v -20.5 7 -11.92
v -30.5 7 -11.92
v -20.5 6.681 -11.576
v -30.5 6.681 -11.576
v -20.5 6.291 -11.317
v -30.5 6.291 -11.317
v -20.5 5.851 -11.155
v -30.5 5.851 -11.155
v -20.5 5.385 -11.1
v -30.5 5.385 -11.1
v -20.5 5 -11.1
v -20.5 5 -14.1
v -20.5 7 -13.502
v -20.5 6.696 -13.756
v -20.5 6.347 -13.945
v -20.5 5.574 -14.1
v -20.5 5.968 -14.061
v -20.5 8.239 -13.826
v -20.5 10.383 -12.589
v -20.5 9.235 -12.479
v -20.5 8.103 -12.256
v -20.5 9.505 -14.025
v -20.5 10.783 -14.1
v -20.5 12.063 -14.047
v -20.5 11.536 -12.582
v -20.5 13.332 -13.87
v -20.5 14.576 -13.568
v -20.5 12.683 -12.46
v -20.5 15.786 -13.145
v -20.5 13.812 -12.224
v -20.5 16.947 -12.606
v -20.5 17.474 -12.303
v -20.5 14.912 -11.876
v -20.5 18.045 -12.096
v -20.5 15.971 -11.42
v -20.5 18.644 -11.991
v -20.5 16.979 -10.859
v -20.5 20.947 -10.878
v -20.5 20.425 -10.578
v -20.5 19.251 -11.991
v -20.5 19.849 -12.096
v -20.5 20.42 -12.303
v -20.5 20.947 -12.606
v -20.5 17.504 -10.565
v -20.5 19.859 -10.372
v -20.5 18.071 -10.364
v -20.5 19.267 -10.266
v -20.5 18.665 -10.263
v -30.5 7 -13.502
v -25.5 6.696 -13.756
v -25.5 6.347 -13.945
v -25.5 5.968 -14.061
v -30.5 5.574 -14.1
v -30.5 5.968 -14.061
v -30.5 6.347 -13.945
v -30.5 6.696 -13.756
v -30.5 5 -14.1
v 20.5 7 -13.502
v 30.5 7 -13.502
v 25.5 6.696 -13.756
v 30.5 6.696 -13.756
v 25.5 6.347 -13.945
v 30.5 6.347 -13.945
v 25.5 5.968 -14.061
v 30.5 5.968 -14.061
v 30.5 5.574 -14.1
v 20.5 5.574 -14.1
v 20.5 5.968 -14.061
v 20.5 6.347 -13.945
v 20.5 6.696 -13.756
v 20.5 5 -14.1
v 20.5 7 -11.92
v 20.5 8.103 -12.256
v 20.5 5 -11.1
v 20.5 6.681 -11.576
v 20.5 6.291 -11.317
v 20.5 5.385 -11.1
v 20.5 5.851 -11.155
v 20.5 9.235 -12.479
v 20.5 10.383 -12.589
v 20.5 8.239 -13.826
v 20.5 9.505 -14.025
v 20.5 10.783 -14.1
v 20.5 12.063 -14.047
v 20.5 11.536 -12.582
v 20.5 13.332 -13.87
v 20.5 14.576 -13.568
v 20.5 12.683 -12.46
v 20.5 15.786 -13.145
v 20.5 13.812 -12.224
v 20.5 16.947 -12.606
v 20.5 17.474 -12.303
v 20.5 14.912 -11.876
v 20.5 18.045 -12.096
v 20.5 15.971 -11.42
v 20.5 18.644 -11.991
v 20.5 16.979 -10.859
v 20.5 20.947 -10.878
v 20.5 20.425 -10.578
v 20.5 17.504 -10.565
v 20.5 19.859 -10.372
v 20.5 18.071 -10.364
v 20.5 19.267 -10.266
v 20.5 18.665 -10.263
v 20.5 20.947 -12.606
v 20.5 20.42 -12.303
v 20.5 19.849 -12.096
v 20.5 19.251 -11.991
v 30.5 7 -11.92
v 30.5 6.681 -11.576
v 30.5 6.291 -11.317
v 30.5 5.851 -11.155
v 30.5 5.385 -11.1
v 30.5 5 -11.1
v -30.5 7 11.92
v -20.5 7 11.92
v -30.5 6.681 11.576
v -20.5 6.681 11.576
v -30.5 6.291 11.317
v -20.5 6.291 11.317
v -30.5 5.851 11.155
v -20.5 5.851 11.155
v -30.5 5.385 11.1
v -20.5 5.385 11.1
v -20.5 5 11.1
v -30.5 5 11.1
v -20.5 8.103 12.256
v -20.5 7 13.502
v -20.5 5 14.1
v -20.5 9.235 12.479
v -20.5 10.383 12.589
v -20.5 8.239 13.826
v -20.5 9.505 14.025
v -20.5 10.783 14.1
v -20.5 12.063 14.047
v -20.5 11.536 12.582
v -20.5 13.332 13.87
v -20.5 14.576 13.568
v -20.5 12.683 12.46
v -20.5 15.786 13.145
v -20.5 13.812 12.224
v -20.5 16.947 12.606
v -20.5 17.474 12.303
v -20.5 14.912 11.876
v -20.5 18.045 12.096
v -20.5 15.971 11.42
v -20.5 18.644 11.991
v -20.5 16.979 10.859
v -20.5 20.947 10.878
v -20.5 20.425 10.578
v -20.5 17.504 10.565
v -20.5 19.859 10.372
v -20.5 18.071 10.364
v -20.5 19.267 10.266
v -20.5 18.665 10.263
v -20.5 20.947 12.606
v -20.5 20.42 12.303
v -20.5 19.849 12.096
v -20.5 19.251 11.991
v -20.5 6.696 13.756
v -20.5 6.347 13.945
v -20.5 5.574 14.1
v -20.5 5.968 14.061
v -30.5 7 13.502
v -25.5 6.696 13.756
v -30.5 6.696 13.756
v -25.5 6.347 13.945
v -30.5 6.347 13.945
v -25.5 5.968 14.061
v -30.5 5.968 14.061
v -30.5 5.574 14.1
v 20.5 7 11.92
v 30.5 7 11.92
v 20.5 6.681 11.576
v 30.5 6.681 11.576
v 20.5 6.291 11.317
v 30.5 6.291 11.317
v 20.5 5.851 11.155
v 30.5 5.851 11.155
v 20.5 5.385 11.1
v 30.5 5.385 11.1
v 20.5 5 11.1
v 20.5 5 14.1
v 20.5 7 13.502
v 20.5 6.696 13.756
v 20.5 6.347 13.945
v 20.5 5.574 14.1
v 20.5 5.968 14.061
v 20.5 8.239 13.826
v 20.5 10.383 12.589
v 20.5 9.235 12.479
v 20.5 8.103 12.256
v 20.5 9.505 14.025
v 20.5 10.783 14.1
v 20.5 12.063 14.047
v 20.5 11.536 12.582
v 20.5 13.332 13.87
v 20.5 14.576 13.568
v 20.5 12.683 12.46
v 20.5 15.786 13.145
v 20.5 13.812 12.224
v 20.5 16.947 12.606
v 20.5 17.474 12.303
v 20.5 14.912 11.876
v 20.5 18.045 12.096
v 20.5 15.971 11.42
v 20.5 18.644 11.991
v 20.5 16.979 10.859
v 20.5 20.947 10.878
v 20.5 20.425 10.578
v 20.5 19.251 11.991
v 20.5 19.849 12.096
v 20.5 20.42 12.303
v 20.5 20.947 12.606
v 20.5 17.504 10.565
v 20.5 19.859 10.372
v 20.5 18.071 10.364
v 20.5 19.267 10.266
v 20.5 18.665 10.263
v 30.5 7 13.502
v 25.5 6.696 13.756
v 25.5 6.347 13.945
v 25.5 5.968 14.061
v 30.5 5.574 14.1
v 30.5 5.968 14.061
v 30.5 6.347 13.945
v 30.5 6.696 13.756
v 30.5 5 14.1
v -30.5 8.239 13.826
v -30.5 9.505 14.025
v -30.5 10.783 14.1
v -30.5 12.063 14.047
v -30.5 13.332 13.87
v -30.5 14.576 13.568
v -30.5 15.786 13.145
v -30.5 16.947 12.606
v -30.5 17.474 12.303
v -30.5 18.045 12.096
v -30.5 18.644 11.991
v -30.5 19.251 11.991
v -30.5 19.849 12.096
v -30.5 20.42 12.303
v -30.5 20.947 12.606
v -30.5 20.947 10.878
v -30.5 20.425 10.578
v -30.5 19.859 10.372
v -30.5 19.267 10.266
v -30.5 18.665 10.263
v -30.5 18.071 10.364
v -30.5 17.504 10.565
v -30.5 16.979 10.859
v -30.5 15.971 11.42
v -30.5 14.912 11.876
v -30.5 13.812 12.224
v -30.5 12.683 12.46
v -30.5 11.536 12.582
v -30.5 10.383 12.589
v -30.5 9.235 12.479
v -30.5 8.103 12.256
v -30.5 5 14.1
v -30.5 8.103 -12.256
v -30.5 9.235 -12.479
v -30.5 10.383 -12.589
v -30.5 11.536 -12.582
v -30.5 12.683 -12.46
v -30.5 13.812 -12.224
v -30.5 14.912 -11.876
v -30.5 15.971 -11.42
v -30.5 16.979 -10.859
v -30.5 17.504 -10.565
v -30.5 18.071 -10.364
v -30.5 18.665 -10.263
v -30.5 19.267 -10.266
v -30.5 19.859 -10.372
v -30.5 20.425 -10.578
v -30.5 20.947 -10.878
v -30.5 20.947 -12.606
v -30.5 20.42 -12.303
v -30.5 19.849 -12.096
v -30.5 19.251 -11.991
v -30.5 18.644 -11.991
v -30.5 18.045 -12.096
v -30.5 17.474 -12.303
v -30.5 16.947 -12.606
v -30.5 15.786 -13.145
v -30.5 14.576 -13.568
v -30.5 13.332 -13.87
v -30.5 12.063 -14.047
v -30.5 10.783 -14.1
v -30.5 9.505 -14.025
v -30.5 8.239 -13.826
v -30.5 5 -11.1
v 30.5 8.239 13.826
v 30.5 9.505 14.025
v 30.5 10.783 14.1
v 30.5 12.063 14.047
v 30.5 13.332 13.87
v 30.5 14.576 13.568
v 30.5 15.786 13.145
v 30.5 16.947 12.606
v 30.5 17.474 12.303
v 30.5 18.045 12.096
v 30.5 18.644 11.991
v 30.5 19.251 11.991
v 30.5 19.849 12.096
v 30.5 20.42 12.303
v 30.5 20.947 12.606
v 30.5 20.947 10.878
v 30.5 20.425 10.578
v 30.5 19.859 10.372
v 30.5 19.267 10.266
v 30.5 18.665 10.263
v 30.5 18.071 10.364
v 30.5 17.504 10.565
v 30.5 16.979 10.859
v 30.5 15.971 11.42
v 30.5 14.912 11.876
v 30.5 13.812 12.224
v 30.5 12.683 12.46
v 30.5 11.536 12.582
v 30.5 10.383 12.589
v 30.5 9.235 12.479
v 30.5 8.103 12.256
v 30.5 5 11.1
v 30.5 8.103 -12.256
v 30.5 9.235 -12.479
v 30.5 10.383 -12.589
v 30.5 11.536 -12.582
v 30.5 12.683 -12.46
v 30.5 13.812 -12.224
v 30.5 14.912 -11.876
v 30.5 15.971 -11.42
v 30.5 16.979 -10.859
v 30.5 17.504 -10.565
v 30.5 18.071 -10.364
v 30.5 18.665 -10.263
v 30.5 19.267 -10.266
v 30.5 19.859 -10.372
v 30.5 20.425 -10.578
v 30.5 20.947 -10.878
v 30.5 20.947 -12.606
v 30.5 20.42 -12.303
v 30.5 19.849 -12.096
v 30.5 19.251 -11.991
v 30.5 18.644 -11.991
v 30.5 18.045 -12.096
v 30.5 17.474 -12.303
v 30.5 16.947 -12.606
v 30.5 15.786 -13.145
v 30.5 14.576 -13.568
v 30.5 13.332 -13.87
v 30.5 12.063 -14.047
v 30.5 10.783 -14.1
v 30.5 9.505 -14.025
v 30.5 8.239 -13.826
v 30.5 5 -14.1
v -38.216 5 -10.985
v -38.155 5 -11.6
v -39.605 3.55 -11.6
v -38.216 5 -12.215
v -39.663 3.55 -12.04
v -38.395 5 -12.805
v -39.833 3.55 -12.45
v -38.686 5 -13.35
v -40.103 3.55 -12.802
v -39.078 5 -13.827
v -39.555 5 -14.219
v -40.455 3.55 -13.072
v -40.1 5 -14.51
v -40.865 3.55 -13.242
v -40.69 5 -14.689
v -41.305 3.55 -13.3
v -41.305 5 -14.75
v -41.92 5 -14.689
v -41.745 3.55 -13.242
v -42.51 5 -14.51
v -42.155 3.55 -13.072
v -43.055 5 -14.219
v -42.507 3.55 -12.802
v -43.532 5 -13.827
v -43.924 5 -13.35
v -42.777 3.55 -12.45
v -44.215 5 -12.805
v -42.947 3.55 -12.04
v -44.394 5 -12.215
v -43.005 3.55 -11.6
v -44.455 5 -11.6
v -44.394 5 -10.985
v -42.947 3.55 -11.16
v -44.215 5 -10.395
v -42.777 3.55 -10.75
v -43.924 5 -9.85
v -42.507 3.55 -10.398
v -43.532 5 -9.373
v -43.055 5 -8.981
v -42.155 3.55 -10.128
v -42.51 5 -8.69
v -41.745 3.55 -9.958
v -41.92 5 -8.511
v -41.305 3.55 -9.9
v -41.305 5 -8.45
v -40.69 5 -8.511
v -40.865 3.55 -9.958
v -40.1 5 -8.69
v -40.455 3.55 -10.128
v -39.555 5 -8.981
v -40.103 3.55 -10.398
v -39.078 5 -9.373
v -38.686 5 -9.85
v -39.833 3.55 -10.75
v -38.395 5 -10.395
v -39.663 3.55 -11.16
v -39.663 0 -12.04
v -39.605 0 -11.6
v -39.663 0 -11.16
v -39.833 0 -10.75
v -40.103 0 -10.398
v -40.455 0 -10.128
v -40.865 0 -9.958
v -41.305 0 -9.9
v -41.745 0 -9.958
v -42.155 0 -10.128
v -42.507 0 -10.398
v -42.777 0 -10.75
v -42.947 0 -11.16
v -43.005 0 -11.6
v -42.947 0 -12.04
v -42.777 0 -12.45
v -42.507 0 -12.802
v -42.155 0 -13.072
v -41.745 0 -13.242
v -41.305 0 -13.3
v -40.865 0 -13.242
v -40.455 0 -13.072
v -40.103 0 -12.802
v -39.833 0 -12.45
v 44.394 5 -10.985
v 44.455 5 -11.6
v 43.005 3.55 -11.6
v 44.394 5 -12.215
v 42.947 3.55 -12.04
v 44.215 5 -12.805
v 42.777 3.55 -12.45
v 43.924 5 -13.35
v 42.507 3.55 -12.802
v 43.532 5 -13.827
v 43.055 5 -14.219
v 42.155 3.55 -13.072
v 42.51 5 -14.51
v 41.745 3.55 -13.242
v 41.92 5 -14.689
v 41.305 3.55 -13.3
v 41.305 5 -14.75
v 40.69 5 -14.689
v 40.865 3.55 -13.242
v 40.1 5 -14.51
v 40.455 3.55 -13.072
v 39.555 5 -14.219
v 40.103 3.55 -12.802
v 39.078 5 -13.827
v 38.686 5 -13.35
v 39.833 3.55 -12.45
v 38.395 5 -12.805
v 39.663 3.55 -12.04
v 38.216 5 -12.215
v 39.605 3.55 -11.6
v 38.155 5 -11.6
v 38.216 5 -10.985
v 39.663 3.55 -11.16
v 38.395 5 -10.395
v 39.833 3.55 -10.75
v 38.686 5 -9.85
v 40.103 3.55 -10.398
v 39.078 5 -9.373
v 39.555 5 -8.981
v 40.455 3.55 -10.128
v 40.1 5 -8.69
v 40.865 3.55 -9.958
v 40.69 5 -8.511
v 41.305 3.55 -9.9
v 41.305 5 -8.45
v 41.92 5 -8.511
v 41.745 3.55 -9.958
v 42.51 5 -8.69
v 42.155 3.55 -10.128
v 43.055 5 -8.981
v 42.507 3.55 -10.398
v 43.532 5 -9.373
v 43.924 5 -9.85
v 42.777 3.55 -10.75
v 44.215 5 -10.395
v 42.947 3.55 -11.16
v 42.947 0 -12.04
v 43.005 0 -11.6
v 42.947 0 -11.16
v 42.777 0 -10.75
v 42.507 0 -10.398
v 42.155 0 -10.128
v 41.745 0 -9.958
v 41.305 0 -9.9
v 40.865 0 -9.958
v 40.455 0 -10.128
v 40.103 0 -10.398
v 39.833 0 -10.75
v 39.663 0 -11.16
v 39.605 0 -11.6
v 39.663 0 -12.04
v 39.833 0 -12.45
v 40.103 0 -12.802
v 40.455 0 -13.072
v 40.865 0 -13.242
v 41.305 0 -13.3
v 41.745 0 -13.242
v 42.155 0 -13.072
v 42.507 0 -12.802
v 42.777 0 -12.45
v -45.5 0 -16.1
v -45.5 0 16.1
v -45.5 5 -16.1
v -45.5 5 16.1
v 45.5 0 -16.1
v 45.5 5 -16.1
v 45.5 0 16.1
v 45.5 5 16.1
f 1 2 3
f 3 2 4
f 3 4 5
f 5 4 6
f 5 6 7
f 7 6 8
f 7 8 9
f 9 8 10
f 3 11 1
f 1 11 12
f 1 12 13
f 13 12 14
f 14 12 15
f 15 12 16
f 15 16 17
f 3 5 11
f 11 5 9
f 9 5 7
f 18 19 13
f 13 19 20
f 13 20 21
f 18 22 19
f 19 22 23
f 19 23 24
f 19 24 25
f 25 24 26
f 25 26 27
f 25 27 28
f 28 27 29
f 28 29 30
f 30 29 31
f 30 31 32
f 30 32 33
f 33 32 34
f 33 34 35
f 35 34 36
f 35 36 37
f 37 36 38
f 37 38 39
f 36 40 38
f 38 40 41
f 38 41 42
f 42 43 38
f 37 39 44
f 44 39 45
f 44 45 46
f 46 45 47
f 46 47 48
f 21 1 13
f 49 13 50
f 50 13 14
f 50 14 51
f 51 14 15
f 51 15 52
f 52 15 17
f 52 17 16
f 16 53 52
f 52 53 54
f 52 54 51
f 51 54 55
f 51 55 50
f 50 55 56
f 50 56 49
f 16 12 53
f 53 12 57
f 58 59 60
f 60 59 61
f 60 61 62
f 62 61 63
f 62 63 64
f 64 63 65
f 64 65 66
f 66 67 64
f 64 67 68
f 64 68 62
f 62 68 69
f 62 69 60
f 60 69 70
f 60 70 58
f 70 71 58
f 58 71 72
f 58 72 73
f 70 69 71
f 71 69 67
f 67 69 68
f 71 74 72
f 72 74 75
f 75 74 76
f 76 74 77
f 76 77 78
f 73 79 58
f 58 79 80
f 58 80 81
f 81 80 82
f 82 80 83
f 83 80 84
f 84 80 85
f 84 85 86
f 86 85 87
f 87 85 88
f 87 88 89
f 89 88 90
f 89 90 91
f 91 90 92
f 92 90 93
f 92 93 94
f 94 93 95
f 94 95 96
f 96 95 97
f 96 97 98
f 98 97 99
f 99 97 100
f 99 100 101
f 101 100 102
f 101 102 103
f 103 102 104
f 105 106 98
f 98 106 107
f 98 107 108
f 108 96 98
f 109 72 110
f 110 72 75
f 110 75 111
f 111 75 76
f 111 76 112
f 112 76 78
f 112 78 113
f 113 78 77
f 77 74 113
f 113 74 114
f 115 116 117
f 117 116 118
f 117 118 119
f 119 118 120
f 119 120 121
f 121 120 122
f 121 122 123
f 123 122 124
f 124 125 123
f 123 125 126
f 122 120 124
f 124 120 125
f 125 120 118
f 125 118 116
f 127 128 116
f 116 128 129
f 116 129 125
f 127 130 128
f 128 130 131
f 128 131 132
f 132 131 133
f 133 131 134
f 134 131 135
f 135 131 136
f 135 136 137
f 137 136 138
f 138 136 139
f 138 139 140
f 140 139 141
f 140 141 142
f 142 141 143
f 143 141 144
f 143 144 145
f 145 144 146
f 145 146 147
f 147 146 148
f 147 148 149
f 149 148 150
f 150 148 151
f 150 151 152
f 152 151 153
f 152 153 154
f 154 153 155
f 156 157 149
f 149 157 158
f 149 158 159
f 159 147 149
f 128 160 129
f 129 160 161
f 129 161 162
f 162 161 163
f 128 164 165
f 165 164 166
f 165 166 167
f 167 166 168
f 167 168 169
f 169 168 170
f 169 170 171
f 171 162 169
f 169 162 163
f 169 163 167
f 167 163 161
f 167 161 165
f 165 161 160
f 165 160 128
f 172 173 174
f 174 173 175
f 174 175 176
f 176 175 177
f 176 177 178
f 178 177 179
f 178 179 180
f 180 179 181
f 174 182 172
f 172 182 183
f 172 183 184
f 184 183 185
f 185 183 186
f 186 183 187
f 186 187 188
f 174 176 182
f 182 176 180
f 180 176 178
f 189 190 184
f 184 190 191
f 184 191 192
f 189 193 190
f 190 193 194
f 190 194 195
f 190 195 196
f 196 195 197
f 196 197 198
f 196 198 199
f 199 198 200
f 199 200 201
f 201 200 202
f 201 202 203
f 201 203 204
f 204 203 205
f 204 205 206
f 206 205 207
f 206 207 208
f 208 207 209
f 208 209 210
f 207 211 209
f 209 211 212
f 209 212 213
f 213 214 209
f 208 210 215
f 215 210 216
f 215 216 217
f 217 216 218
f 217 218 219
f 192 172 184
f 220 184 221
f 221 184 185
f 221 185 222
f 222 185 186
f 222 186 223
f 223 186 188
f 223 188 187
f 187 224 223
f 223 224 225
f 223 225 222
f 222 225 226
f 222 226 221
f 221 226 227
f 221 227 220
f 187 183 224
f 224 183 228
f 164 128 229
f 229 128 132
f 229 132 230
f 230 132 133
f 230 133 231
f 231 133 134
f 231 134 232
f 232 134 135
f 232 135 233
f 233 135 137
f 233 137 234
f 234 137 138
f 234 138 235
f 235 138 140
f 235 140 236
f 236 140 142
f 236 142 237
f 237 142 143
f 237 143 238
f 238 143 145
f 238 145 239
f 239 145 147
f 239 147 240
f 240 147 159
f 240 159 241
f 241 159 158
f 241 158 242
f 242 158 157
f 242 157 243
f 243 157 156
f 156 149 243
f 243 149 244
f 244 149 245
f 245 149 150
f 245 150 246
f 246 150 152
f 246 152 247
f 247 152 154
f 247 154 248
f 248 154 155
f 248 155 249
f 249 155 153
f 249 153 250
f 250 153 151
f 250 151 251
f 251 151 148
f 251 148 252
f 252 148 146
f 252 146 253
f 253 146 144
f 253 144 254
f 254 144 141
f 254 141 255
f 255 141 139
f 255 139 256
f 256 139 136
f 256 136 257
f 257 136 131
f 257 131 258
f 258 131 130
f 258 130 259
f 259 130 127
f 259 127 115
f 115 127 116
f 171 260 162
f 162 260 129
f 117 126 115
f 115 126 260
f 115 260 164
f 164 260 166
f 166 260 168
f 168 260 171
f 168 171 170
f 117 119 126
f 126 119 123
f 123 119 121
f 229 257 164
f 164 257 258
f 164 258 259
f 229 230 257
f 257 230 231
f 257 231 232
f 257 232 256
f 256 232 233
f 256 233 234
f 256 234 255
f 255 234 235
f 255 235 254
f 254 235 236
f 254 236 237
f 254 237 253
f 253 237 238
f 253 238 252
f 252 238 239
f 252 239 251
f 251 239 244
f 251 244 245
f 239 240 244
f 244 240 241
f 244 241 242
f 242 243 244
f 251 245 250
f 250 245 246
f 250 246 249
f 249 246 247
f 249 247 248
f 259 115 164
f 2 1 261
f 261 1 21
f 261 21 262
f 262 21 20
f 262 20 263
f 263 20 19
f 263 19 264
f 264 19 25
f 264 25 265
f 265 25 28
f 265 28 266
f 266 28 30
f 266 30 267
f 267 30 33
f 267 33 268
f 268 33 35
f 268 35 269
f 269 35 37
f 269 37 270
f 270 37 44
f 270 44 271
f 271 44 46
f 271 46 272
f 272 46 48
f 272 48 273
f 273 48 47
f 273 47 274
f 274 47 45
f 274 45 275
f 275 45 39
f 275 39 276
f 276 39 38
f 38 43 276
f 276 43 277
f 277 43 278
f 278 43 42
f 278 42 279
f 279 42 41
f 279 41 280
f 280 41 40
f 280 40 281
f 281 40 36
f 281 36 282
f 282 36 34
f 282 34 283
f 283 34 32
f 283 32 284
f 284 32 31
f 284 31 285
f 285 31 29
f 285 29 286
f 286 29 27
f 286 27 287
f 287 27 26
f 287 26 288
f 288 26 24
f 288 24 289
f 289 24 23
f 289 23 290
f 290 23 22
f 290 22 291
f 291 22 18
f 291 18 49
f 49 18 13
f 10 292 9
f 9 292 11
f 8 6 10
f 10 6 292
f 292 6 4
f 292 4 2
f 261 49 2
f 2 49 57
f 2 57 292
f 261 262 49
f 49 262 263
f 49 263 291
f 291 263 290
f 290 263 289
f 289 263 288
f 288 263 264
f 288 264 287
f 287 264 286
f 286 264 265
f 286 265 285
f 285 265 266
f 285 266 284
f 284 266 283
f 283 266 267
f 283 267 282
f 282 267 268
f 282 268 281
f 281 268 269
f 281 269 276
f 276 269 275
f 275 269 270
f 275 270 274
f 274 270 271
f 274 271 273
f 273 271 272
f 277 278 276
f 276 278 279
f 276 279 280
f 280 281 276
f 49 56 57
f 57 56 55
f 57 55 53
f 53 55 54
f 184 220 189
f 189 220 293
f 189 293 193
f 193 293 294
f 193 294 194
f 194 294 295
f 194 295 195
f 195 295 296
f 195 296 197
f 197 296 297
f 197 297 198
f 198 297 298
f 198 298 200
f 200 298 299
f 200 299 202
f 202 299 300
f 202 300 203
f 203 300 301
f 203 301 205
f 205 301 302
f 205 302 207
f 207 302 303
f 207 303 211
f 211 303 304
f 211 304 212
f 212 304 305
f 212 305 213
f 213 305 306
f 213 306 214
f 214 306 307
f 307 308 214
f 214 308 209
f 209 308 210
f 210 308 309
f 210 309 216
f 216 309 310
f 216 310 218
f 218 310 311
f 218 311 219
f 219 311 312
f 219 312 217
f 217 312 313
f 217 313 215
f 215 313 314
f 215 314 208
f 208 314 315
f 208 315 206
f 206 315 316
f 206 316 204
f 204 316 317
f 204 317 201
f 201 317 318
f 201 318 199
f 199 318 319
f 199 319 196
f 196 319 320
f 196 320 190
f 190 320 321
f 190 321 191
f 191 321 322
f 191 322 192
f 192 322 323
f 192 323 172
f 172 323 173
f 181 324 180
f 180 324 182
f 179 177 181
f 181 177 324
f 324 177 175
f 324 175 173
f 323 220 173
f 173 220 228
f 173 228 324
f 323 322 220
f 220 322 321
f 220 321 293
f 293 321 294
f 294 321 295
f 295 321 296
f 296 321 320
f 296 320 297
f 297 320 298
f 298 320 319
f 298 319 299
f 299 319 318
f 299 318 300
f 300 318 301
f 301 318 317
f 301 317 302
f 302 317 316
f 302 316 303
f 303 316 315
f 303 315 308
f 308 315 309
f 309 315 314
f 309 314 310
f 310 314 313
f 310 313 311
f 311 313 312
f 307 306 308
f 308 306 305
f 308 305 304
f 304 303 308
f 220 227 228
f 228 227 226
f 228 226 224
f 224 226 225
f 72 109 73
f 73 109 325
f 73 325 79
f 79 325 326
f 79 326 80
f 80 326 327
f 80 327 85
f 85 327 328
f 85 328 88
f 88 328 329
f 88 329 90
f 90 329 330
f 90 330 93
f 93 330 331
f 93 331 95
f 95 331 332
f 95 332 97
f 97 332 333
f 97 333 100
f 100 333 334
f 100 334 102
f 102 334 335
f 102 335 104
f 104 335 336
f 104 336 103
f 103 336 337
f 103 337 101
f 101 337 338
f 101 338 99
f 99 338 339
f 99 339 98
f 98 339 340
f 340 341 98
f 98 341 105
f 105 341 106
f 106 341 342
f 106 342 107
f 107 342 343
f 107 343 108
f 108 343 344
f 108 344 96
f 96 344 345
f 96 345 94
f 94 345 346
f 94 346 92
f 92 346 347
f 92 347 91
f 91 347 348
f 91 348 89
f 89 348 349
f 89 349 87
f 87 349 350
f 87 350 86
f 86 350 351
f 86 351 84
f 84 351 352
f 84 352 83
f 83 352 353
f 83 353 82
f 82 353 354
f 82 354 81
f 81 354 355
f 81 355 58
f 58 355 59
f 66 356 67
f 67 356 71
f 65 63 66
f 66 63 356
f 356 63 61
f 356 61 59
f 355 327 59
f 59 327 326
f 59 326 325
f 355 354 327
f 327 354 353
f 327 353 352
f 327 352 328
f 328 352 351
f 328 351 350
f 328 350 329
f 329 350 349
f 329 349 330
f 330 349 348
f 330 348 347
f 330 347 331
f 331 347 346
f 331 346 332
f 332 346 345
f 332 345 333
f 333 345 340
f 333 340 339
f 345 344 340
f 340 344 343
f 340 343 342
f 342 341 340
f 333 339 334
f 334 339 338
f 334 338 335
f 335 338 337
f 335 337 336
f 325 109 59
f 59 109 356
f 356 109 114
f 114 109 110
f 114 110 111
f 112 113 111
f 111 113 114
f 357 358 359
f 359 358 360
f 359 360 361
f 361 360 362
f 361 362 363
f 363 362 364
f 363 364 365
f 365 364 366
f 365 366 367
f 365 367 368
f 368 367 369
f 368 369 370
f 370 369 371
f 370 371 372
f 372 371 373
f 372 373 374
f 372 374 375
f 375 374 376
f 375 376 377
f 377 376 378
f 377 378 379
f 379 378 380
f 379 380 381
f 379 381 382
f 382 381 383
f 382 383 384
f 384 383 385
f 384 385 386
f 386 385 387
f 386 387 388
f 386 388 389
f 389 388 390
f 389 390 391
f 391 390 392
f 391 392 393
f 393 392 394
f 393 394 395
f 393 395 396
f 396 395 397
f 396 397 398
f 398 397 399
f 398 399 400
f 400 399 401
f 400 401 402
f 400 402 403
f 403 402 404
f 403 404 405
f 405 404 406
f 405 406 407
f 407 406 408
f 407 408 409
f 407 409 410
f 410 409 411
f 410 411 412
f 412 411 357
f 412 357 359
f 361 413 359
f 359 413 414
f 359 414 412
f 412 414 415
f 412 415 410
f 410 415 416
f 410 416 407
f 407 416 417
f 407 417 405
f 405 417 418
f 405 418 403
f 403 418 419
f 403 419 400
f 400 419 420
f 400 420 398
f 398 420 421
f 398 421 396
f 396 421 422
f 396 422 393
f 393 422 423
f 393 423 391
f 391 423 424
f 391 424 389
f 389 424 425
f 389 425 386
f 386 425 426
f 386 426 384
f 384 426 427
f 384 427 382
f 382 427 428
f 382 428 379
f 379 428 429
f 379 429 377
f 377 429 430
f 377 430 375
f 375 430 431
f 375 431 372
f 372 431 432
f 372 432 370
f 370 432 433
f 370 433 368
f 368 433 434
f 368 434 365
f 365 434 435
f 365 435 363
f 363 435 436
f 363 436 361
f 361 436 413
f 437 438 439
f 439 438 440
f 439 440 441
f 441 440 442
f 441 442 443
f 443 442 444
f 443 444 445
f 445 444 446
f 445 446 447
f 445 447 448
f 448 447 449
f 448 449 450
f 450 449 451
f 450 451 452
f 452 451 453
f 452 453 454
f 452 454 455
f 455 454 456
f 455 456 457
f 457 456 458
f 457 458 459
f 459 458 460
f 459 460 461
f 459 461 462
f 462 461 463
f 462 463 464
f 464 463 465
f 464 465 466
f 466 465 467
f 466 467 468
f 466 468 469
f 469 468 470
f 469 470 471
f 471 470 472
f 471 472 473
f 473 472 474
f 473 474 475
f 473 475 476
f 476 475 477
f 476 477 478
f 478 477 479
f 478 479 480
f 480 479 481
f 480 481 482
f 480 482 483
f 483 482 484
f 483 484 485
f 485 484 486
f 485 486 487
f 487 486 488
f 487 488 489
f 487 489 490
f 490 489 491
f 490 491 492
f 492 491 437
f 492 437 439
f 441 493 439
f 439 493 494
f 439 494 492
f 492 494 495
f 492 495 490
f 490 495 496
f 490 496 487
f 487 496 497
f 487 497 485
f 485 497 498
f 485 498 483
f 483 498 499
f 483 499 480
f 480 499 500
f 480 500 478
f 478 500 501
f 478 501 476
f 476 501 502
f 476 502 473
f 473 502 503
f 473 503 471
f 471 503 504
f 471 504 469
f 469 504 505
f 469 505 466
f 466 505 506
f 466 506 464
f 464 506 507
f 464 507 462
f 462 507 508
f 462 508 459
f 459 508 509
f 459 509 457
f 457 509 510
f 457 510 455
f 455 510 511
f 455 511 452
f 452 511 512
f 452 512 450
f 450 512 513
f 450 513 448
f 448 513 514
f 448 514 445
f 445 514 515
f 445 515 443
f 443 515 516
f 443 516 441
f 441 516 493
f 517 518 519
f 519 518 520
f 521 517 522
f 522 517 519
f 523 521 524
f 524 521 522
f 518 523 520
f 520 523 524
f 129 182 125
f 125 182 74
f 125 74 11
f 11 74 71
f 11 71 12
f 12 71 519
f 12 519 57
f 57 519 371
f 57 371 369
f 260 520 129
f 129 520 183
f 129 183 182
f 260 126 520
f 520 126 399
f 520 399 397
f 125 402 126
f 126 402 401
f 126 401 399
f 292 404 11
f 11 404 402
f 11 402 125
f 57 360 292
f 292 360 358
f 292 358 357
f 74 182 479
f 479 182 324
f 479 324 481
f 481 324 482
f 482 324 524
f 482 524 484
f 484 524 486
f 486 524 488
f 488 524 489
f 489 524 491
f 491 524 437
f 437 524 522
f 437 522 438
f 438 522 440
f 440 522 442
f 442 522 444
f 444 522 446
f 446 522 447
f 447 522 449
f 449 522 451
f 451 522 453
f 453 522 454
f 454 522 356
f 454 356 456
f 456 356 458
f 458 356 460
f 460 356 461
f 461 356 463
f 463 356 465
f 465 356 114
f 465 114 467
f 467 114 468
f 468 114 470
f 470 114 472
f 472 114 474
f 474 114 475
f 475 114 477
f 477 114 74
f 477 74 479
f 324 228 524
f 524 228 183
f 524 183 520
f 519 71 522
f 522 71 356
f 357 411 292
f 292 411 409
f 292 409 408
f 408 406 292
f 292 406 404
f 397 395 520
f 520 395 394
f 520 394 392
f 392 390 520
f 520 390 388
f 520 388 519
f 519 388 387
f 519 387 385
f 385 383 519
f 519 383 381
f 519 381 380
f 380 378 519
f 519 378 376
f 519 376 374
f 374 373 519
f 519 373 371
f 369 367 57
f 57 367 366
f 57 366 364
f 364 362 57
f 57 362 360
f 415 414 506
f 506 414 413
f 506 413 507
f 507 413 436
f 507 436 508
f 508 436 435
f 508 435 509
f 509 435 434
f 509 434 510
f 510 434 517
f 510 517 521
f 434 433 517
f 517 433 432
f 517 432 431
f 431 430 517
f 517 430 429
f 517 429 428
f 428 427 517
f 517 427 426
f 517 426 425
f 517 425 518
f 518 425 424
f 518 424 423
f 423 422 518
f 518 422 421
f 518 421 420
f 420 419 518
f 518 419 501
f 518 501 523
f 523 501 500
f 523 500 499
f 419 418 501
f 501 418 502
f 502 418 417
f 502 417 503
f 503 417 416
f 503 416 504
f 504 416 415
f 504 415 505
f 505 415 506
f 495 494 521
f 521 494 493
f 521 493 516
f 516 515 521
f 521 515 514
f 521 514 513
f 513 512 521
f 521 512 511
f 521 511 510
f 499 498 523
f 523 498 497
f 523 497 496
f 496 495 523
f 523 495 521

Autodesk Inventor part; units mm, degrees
ref_plane "YZ Plane" through (0, 0, 0) normal (1, 0, 0) x (0, 1, 0)
ref_plane "XZ Plane" through (0, 0, 0) normal (0, 1, 0) x (-1, 0, 0)
ref_plane "XY Plane" through (0, 0, 0) normal (0, 0, 1) x (1, 0, 0)
sketch "Sketch1" plane through (0, 0, 0) normal (0, 1, 0) x (-1, 0, 0)
  line L0 (41.305, -11.6) -> (-41.305, -11.6) construction
  line L1 (0, 107.889) -> (0, -128.889) construction
  line L2 (45.5, -16.1) -> (-45.5, -16.1)
  line L3 (-45.5, -16.1) -> (-45.5, 16.1)
  line L4 (-45.5, 16.1) -> (45.5, 16.1)
  line L5 (45.5, 16.1) -> (45.5, -16.1)
  line L6 (62.4324, 0) -> (-80.3334, 0) construction
  point P0 (0, 0)
  point P1 (45.5, 0)
  point P2 (0, 16.1)
  point P3 (0, -11.6)
  dimension "d1" = 82.61
  dimension "d2" = 91
  dimension "d3" = 32.2
  dimension "d4" = 4.5
extrude "Extrusion1" add sketch "Sketch1" along normal blind 5
sketch "Sketch2" plane through (0, 5, 0) normal (0, 1, 0) x (1, 0, 0)
  line L0 (-45.5, -16.1) -> (45.5, -16.1) projected
  line L1 (45.5, -16.1) -> (45.5, 16.1) projected
  line L2 (45.5, 16.1) -> (-45.5, 16.1) projected
  line L3 (-45.5, 16.1) -> (-45.5, -16.1) projected
  point P0 (0, 0)
  point P1 (41.305, 11.6)
  point P2 (-41.305, 11.6)
  point P3 (41.305, 11.6)
  point P4 (-41.305, 11.6)
hole "Hole1" at (41.305, 5, -11.6) at (-41.305, 5, -11.6) direction (0, -1, 0) diameter 3.4 depth 5 countersink diameter 6.3 countersink angle 90 clearance for "Countersunk Flat Head Screw ISO 2009/7046" size "M3" standard "ISO"
ref_plane "Work Plane1" through (25.5, 0, 16.1) normal (1, 0, 0) x (0, 0, -1)
ref_plane "Work Plane2" through (0, 0, 16.1) normal (1, 0, 0) x (0, 0, -1)
sketch "Sketch3" plane through (25.5, 0, 16.1) normal (1, 0, 0) x (0, 0, -1)
  line L0 (0, 5) -> (32.2, 5) projected
  line L1 (2, 5) -> (5, 5)
  line L2 (5, 5) -> (5, 7)
  line L3 (5, 7) -> (4.18, 7)
  line L4 (2, 7) -> (2, 5)
  line L5 (16.1, 17.288) -> (16.1, -5.2059) construction
  line L6 (0, 0) -> (0, 5) construction
  arc A0 (3.4943, 16.9472) -> (3.4943, 20.9472) centre (0.622, 18.9472) ccw
  arc A1 (5.2405, 16.979) -> (5.2223, 20.9472) centre (2.3482, 18.9499) ccw
  line L7 (3.4943, 20.9472) -> (5.2223, 20.9472)
  arc A2 (3.4943, 16.9472) -> (2.5975, 7) centre (15, 10.896) ccw
  arc A3 (5.2405, 16.979) -> (4.18, 7) centre (15, 10.896) ccw
  line L8 (2.5975, 7) -> (2, 7)
  line L9 (27.2, 5) -> (27.2, 7)
  line L10 (27.2, 7) -> (28.02, 7)
  line L11 (30.2, 7) -> (30.2, 5)
  line L12 (28.7057, 5) -> (28.7057, 18.917) construction
  arc A4 (28.7057, 20.9472) -> (28.7057, 16.9472) centre (31.578, 18.9472) ccw
  arc A5 (26.9777, 20.9472) -> (26.9595, 16.979) centre (29.8518, 18.9499) ccw
  line L13 (28.7057, 20.9472) -> (26.9777, 20.9472)
  arc A6 (29.6025, 7) -> (28.7057, 16.9472) centre (17.2, 10.896) ccw
  arc A7 (28.02, 7) -> (26.9595, 16.979) centre (17.2, 10.896) ccw
  line L14 (29.6025, 7) -> (30.2, 7)
  point P0 (16.1, 0)
  dimension "d20" = 3
  dimension "d21" = 2
  dimension "d23" = 2
  dimension "d25" = 4
  dimension "d26" = 3.5
  dimension "d27" = 3.5
  dimension "d31" = 16.1
  dimension "d32" = 1.5
  dimension "d33" = 0.5975
  dimension "d34" = 13
extrude "Extrusion2" add sketch "Sketch3" along normal mid plane 10
mirror "Mirror1" about plane through (0, 0, 16.1) normal (1, 0, 0) of "Extrusion2"
fillet "Fillet1" radius 2 8 edges at (25.5, 7, 14.1) (25.5, 7, 11.1) (-25.5, 7, 14.1) (-25.5, 7, 11.1) (25.5, 7, -11.1) (25.5, 7, -14.1) (-25.5, 7, -14.1) (-25.5, 7, -11.1)
properties part number "powerbank_mount_3DPrint"
